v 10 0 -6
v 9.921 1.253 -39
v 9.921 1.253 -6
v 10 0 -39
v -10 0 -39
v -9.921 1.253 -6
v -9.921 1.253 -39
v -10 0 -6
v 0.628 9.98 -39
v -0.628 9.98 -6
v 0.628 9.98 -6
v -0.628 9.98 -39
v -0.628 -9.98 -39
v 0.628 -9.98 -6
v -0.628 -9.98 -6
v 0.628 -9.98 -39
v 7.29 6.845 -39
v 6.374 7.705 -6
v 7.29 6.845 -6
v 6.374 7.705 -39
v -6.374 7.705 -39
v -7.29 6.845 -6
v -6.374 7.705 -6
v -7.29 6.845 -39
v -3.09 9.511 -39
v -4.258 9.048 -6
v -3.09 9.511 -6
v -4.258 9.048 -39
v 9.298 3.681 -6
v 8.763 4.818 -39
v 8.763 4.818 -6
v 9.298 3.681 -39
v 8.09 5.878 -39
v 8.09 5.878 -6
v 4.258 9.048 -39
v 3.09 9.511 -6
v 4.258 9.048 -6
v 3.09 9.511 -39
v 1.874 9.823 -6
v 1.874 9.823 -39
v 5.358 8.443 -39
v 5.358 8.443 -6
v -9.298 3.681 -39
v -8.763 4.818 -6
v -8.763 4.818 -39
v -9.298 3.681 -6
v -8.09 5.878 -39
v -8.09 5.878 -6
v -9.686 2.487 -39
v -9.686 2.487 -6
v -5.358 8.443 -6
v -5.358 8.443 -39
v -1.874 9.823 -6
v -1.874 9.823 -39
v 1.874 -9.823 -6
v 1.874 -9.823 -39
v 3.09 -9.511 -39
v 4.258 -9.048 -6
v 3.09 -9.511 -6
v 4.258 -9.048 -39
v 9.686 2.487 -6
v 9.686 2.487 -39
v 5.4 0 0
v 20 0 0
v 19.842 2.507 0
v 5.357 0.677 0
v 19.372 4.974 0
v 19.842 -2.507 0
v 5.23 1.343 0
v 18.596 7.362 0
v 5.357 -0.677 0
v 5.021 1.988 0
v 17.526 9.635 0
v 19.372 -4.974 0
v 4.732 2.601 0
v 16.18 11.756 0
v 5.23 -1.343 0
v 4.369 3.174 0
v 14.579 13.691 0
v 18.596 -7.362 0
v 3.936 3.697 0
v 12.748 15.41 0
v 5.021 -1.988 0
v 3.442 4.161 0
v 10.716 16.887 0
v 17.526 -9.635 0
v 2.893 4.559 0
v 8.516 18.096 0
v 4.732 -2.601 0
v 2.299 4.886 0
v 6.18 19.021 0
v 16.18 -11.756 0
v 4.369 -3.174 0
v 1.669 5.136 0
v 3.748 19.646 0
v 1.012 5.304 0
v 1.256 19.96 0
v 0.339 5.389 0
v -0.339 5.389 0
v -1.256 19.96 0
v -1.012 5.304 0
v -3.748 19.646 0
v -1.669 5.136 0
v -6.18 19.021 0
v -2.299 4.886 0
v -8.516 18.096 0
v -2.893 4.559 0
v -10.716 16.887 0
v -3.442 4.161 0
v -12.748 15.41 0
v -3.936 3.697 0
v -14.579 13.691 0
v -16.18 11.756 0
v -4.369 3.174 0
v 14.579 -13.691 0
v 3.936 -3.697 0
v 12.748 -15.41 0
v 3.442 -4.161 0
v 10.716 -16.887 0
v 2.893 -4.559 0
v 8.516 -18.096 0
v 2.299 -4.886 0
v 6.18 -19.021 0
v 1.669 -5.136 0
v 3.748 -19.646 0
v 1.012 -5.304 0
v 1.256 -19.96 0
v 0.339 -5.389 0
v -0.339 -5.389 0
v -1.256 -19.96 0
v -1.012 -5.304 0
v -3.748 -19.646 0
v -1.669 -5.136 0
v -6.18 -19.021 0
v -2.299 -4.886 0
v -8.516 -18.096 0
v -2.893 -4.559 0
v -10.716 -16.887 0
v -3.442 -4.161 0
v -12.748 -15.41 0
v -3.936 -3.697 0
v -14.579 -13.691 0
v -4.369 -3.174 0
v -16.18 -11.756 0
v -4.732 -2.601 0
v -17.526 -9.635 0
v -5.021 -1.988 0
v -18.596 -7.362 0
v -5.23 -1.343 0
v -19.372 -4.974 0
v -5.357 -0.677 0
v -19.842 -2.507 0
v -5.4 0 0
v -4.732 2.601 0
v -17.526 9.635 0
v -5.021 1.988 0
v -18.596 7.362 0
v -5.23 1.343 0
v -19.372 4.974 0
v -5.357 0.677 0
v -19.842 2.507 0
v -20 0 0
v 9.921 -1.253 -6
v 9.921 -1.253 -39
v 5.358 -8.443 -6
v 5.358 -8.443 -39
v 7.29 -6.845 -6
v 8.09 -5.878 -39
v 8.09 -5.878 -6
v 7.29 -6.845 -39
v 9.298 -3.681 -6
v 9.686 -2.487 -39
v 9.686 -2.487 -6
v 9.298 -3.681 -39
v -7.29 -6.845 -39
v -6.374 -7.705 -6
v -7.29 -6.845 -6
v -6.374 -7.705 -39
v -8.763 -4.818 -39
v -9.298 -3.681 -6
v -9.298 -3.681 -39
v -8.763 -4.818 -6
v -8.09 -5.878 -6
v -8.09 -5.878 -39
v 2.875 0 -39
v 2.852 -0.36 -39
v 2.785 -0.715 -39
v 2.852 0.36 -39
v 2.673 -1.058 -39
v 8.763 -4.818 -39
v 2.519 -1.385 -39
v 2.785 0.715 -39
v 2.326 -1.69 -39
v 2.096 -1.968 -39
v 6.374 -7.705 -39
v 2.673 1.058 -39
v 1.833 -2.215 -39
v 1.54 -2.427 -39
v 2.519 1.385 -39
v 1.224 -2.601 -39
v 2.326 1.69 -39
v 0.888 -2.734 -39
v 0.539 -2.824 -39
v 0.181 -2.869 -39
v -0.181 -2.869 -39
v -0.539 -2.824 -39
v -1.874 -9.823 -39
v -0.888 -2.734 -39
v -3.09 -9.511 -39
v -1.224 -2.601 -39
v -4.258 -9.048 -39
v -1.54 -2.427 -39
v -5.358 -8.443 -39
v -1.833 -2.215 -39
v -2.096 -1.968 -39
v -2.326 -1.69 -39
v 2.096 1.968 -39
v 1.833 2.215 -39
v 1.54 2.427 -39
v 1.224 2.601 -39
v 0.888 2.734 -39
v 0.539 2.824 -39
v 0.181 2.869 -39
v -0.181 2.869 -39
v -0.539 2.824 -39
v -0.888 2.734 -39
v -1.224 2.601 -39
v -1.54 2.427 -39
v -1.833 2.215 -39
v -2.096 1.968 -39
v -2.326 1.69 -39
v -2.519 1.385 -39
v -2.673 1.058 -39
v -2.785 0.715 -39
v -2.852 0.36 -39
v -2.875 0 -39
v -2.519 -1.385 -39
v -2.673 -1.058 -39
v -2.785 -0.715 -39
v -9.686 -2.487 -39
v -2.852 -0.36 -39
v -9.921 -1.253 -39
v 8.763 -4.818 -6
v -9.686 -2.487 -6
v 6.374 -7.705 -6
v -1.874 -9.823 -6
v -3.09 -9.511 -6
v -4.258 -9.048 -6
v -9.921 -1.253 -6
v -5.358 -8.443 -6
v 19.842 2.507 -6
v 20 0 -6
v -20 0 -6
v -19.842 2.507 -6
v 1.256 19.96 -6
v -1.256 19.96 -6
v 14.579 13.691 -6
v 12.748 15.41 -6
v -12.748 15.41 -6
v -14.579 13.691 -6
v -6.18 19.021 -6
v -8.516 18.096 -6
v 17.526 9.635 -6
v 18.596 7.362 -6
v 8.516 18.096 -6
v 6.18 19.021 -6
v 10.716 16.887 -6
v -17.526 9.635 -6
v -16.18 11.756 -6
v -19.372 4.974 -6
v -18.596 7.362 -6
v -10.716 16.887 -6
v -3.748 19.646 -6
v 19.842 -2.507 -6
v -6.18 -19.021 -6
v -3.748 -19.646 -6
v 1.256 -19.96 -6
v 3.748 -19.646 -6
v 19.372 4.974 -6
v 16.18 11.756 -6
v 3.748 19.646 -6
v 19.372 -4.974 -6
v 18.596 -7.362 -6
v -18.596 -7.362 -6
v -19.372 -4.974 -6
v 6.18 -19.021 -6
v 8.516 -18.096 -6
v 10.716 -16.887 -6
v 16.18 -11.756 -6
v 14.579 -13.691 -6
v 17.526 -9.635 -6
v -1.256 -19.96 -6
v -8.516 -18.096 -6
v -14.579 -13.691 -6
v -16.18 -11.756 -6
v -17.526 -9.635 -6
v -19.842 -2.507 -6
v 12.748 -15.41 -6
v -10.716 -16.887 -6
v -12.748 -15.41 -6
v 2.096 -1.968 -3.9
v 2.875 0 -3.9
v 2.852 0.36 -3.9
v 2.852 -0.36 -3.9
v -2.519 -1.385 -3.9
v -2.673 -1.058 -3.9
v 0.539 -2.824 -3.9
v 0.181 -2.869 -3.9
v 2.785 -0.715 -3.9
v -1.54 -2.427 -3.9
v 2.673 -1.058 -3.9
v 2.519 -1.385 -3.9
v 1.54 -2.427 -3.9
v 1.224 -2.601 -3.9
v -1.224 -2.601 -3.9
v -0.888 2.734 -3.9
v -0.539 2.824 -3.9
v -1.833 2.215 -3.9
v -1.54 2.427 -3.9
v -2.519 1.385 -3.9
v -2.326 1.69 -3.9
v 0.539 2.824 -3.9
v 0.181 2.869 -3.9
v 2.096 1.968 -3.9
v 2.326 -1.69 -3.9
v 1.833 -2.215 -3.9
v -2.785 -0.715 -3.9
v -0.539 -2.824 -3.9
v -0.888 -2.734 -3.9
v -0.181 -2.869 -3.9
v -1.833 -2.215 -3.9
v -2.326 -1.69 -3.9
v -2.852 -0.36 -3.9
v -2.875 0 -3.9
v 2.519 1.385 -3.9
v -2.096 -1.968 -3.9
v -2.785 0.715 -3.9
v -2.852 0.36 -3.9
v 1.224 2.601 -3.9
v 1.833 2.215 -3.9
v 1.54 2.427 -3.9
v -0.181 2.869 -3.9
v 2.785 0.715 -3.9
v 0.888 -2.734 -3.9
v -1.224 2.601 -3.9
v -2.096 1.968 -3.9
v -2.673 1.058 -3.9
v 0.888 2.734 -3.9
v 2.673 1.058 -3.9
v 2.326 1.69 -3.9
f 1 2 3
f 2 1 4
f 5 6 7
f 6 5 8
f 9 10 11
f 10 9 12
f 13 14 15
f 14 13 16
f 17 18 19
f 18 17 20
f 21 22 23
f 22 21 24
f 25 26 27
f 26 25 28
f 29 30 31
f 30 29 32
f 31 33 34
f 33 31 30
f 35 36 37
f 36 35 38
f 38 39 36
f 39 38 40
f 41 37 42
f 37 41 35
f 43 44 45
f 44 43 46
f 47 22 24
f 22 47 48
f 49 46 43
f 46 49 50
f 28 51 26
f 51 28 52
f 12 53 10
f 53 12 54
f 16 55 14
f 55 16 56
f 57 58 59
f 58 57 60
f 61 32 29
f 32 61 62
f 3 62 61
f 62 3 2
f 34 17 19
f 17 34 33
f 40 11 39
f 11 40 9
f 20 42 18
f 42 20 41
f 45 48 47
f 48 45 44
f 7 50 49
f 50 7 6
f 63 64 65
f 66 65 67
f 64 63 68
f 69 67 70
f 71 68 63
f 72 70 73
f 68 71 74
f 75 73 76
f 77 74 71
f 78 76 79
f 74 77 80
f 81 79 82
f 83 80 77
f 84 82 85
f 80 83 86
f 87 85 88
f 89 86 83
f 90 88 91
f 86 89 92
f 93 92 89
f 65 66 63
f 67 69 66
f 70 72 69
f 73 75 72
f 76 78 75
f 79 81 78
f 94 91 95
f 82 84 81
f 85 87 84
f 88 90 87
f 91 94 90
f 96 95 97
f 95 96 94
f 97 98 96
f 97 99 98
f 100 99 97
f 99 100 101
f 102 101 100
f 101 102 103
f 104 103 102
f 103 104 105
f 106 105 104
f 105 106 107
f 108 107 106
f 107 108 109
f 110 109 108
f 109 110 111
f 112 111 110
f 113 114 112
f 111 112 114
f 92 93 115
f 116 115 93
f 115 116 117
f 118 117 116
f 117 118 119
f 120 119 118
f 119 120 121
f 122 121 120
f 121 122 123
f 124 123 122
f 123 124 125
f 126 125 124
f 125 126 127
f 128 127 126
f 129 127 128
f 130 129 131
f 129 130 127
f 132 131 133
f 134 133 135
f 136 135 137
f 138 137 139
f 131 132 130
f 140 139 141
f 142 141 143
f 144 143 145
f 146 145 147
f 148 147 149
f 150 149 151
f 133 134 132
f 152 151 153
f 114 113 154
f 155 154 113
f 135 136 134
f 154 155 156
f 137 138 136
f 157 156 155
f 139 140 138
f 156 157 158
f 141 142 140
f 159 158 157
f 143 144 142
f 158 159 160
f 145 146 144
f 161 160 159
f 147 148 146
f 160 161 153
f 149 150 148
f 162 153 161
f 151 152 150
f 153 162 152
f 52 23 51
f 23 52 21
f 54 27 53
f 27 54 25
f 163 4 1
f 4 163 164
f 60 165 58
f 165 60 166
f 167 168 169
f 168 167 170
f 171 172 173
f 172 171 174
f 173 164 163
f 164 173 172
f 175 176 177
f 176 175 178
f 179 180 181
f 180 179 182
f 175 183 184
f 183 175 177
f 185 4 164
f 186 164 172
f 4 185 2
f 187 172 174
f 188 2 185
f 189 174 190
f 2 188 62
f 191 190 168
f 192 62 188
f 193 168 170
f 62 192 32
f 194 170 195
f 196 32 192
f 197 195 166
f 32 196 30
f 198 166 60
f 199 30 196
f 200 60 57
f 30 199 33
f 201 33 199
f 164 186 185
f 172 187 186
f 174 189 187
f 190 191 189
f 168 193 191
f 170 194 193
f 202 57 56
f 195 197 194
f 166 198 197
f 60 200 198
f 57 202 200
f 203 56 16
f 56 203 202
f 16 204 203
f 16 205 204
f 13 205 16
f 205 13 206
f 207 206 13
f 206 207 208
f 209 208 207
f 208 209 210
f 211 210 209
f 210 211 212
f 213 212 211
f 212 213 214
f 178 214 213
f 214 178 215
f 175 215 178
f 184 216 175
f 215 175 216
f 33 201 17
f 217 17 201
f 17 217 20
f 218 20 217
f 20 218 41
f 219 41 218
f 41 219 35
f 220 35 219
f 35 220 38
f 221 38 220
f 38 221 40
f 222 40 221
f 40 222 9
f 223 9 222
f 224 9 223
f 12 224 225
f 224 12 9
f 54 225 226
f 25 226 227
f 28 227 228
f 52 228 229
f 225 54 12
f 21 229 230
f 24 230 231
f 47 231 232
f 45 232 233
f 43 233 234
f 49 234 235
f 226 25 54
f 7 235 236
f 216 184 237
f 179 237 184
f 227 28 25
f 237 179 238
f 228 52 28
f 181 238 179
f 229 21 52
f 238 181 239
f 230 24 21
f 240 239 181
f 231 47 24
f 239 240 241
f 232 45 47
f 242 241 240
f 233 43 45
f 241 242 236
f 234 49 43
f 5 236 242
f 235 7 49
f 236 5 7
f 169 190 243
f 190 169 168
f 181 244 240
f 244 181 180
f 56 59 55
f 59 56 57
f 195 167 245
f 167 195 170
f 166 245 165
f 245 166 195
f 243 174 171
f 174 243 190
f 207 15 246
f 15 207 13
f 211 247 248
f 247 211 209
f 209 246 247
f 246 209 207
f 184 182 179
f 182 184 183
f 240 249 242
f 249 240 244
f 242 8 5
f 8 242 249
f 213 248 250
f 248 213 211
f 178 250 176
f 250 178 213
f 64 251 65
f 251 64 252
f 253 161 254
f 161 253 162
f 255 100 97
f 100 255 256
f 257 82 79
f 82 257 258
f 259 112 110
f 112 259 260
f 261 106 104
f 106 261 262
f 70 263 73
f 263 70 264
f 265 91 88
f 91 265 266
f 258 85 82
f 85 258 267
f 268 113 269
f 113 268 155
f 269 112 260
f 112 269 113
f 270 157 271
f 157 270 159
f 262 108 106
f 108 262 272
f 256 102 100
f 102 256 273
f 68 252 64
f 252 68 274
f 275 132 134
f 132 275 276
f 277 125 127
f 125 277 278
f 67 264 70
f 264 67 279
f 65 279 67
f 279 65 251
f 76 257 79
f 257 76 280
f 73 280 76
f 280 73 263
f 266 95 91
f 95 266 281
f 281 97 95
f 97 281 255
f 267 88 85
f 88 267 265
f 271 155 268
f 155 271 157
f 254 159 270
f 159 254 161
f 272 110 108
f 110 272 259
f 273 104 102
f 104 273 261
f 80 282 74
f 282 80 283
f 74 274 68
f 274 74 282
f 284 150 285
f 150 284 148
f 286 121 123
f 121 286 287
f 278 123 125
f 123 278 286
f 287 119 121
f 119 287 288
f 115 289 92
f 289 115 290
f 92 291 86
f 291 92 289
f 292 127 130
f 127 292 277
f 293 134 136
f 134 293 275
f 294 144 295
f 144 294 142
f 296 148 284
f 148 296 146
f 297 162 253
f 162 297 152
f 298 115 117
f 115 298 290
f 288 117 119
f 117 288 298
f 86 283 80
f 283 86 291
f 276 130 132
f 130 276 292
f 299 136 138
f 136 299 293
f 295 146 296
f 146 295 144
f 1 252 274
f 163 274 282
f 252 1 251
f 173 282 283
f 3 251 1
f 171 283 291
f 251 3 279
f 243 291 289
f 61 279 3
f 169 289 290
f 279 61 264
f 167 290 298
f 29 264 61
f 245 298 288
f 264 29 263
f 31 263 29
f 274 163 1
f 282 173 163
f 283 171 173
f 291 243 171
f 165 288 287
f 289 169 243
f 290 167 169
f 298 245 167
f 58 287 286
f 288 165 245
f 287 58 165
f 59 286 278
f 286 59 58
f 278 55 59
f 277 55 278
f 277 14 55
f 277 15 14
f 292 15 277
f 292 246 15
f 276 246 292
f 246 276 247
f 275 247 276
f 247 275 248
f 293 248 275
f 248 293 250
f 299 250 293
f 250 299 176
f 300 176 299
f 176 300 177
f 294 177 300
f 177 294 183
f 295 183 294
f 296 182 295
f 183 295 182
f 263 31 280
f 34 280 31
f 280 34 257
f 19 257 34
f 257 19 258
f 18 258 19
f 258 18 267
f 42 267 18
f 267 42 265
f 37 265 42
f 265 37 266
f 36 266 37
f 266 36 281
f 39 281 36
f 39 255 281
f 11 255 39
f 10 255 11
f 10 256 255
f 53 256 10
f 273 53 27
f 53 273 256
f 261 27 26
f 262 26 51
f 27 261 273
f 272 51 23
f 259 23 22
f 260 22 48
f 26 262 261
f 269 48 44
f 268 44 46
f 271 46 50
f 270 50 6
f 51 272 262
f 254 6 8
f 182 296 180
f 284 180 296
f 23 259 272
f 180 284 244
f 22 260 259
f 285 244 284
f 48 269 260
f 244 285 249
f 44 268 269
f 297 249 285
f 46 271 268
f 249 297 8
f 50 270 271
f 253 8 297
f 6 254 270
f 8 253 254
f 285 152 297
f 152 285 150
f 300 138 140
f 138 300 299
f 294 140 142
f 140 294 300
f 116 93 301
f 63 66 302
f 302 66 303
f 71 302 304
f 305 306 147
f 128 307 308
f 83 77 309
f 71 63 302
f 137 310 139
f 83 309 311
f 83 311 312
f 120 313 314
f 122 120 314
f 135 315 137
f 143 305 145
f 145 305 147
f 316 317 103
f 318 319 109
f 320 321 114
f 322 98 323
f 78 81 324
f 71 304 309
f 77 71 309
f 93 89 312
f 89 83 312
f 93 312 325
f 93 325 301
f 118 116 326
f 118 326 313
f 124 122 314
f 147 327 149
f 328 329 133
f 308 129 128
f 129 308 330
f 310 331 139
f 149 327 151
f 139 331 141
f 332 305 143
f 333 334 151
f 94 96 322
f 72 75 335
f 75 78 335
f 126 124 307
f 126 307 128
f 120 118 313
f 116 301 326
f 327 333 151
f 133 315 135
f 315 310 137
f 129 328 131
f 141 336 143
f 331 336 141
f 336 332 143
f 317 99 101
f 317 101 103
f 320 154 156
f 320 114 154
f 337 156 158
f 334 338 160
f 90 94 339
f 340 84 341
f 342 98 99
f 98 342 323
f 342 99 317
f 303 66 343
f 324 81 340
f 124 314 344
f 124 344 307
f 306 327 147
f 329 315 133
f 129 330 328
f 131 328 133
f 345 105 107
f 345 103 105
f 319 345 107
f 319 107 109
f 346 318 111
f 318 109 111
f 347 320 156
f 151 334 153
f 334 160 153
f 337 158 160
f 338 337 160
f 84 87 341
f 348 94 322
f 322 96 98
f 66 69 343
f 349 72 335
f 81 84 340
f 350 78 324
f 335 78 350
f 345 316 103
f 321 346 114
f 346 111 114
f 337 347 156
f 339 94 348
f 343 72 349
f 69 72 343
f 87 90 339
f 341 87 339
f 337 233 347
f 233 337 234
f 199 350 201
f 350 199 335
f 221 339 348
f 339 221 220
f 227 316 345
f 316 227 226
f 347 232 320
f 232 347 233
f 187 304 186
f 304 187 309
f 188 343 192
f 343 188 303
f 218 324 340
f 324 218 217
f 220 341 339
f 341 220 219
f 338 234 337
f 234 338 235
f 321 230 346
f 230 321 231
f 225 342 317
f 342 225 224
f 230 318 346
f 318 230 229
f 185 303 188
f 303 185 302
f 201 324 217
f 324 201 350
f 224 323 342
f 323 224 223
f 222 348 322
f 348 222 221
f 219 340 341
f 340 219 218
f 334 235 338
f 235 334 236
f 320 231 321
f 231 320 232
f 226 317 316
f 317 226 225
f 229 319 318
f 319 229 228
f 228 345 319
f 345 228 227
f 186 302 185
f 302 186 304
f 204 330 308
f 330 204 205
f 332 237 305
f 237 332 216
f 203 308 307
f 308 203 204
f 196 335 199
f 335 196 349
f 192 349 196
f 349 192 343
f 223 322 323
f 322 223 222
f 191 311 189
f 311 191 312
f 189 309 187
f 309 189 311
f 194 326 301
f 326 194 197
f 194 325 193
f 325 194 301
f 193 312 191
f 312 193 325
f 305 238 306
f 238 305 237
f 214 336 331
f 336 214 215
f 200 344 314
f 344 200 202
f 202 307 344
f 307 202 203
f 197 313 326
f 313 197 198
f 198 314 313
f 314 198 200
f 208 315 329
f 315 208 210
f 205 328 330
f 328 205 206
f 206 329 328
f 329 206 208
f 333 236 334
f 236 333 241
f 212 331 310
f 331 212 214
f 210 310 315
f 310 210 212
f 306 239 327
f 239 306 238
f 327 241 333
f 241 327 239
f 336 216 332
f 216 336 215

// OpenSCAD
$fn = 50;


difference() {
	union() {
		translate(v = [0, 0, -39.0000000000]) {
			cylinder(h = 39, r = 10.0000000000);
		}
		translate(v = [0, 0, -6.0000000000]) {
			cylinder(h = 6, r = 20.0000000000);
		}
	}
	union() {
		translate(v = [0, 0, 0]) {
			rotate(a = [0, 0, 0]) {
				difference() {
					union() {
						#translate(v = [0, 0, -39.0000000000]) {
							cylinder(h = 39, r = 2.6000000000);
						}
						#translate(v = [0, 0, -3.9000000000]) {
							cylinder(h = 3.9000000000, r = 10.0000000000, r1 = 2.8750000000, r2 = 5.4000000000);
						}
						#translate(v = [0, 0, -39.0000000000]) {
							cylinder(h = 39, r = 2.8750000000);
						}
						#translate(v = [0, 0, -39.0000000000]) {
							cylinder(h = 39, r = 2.6000000000);
						}
					}
					union();
				}
			}
		}
	}
}
